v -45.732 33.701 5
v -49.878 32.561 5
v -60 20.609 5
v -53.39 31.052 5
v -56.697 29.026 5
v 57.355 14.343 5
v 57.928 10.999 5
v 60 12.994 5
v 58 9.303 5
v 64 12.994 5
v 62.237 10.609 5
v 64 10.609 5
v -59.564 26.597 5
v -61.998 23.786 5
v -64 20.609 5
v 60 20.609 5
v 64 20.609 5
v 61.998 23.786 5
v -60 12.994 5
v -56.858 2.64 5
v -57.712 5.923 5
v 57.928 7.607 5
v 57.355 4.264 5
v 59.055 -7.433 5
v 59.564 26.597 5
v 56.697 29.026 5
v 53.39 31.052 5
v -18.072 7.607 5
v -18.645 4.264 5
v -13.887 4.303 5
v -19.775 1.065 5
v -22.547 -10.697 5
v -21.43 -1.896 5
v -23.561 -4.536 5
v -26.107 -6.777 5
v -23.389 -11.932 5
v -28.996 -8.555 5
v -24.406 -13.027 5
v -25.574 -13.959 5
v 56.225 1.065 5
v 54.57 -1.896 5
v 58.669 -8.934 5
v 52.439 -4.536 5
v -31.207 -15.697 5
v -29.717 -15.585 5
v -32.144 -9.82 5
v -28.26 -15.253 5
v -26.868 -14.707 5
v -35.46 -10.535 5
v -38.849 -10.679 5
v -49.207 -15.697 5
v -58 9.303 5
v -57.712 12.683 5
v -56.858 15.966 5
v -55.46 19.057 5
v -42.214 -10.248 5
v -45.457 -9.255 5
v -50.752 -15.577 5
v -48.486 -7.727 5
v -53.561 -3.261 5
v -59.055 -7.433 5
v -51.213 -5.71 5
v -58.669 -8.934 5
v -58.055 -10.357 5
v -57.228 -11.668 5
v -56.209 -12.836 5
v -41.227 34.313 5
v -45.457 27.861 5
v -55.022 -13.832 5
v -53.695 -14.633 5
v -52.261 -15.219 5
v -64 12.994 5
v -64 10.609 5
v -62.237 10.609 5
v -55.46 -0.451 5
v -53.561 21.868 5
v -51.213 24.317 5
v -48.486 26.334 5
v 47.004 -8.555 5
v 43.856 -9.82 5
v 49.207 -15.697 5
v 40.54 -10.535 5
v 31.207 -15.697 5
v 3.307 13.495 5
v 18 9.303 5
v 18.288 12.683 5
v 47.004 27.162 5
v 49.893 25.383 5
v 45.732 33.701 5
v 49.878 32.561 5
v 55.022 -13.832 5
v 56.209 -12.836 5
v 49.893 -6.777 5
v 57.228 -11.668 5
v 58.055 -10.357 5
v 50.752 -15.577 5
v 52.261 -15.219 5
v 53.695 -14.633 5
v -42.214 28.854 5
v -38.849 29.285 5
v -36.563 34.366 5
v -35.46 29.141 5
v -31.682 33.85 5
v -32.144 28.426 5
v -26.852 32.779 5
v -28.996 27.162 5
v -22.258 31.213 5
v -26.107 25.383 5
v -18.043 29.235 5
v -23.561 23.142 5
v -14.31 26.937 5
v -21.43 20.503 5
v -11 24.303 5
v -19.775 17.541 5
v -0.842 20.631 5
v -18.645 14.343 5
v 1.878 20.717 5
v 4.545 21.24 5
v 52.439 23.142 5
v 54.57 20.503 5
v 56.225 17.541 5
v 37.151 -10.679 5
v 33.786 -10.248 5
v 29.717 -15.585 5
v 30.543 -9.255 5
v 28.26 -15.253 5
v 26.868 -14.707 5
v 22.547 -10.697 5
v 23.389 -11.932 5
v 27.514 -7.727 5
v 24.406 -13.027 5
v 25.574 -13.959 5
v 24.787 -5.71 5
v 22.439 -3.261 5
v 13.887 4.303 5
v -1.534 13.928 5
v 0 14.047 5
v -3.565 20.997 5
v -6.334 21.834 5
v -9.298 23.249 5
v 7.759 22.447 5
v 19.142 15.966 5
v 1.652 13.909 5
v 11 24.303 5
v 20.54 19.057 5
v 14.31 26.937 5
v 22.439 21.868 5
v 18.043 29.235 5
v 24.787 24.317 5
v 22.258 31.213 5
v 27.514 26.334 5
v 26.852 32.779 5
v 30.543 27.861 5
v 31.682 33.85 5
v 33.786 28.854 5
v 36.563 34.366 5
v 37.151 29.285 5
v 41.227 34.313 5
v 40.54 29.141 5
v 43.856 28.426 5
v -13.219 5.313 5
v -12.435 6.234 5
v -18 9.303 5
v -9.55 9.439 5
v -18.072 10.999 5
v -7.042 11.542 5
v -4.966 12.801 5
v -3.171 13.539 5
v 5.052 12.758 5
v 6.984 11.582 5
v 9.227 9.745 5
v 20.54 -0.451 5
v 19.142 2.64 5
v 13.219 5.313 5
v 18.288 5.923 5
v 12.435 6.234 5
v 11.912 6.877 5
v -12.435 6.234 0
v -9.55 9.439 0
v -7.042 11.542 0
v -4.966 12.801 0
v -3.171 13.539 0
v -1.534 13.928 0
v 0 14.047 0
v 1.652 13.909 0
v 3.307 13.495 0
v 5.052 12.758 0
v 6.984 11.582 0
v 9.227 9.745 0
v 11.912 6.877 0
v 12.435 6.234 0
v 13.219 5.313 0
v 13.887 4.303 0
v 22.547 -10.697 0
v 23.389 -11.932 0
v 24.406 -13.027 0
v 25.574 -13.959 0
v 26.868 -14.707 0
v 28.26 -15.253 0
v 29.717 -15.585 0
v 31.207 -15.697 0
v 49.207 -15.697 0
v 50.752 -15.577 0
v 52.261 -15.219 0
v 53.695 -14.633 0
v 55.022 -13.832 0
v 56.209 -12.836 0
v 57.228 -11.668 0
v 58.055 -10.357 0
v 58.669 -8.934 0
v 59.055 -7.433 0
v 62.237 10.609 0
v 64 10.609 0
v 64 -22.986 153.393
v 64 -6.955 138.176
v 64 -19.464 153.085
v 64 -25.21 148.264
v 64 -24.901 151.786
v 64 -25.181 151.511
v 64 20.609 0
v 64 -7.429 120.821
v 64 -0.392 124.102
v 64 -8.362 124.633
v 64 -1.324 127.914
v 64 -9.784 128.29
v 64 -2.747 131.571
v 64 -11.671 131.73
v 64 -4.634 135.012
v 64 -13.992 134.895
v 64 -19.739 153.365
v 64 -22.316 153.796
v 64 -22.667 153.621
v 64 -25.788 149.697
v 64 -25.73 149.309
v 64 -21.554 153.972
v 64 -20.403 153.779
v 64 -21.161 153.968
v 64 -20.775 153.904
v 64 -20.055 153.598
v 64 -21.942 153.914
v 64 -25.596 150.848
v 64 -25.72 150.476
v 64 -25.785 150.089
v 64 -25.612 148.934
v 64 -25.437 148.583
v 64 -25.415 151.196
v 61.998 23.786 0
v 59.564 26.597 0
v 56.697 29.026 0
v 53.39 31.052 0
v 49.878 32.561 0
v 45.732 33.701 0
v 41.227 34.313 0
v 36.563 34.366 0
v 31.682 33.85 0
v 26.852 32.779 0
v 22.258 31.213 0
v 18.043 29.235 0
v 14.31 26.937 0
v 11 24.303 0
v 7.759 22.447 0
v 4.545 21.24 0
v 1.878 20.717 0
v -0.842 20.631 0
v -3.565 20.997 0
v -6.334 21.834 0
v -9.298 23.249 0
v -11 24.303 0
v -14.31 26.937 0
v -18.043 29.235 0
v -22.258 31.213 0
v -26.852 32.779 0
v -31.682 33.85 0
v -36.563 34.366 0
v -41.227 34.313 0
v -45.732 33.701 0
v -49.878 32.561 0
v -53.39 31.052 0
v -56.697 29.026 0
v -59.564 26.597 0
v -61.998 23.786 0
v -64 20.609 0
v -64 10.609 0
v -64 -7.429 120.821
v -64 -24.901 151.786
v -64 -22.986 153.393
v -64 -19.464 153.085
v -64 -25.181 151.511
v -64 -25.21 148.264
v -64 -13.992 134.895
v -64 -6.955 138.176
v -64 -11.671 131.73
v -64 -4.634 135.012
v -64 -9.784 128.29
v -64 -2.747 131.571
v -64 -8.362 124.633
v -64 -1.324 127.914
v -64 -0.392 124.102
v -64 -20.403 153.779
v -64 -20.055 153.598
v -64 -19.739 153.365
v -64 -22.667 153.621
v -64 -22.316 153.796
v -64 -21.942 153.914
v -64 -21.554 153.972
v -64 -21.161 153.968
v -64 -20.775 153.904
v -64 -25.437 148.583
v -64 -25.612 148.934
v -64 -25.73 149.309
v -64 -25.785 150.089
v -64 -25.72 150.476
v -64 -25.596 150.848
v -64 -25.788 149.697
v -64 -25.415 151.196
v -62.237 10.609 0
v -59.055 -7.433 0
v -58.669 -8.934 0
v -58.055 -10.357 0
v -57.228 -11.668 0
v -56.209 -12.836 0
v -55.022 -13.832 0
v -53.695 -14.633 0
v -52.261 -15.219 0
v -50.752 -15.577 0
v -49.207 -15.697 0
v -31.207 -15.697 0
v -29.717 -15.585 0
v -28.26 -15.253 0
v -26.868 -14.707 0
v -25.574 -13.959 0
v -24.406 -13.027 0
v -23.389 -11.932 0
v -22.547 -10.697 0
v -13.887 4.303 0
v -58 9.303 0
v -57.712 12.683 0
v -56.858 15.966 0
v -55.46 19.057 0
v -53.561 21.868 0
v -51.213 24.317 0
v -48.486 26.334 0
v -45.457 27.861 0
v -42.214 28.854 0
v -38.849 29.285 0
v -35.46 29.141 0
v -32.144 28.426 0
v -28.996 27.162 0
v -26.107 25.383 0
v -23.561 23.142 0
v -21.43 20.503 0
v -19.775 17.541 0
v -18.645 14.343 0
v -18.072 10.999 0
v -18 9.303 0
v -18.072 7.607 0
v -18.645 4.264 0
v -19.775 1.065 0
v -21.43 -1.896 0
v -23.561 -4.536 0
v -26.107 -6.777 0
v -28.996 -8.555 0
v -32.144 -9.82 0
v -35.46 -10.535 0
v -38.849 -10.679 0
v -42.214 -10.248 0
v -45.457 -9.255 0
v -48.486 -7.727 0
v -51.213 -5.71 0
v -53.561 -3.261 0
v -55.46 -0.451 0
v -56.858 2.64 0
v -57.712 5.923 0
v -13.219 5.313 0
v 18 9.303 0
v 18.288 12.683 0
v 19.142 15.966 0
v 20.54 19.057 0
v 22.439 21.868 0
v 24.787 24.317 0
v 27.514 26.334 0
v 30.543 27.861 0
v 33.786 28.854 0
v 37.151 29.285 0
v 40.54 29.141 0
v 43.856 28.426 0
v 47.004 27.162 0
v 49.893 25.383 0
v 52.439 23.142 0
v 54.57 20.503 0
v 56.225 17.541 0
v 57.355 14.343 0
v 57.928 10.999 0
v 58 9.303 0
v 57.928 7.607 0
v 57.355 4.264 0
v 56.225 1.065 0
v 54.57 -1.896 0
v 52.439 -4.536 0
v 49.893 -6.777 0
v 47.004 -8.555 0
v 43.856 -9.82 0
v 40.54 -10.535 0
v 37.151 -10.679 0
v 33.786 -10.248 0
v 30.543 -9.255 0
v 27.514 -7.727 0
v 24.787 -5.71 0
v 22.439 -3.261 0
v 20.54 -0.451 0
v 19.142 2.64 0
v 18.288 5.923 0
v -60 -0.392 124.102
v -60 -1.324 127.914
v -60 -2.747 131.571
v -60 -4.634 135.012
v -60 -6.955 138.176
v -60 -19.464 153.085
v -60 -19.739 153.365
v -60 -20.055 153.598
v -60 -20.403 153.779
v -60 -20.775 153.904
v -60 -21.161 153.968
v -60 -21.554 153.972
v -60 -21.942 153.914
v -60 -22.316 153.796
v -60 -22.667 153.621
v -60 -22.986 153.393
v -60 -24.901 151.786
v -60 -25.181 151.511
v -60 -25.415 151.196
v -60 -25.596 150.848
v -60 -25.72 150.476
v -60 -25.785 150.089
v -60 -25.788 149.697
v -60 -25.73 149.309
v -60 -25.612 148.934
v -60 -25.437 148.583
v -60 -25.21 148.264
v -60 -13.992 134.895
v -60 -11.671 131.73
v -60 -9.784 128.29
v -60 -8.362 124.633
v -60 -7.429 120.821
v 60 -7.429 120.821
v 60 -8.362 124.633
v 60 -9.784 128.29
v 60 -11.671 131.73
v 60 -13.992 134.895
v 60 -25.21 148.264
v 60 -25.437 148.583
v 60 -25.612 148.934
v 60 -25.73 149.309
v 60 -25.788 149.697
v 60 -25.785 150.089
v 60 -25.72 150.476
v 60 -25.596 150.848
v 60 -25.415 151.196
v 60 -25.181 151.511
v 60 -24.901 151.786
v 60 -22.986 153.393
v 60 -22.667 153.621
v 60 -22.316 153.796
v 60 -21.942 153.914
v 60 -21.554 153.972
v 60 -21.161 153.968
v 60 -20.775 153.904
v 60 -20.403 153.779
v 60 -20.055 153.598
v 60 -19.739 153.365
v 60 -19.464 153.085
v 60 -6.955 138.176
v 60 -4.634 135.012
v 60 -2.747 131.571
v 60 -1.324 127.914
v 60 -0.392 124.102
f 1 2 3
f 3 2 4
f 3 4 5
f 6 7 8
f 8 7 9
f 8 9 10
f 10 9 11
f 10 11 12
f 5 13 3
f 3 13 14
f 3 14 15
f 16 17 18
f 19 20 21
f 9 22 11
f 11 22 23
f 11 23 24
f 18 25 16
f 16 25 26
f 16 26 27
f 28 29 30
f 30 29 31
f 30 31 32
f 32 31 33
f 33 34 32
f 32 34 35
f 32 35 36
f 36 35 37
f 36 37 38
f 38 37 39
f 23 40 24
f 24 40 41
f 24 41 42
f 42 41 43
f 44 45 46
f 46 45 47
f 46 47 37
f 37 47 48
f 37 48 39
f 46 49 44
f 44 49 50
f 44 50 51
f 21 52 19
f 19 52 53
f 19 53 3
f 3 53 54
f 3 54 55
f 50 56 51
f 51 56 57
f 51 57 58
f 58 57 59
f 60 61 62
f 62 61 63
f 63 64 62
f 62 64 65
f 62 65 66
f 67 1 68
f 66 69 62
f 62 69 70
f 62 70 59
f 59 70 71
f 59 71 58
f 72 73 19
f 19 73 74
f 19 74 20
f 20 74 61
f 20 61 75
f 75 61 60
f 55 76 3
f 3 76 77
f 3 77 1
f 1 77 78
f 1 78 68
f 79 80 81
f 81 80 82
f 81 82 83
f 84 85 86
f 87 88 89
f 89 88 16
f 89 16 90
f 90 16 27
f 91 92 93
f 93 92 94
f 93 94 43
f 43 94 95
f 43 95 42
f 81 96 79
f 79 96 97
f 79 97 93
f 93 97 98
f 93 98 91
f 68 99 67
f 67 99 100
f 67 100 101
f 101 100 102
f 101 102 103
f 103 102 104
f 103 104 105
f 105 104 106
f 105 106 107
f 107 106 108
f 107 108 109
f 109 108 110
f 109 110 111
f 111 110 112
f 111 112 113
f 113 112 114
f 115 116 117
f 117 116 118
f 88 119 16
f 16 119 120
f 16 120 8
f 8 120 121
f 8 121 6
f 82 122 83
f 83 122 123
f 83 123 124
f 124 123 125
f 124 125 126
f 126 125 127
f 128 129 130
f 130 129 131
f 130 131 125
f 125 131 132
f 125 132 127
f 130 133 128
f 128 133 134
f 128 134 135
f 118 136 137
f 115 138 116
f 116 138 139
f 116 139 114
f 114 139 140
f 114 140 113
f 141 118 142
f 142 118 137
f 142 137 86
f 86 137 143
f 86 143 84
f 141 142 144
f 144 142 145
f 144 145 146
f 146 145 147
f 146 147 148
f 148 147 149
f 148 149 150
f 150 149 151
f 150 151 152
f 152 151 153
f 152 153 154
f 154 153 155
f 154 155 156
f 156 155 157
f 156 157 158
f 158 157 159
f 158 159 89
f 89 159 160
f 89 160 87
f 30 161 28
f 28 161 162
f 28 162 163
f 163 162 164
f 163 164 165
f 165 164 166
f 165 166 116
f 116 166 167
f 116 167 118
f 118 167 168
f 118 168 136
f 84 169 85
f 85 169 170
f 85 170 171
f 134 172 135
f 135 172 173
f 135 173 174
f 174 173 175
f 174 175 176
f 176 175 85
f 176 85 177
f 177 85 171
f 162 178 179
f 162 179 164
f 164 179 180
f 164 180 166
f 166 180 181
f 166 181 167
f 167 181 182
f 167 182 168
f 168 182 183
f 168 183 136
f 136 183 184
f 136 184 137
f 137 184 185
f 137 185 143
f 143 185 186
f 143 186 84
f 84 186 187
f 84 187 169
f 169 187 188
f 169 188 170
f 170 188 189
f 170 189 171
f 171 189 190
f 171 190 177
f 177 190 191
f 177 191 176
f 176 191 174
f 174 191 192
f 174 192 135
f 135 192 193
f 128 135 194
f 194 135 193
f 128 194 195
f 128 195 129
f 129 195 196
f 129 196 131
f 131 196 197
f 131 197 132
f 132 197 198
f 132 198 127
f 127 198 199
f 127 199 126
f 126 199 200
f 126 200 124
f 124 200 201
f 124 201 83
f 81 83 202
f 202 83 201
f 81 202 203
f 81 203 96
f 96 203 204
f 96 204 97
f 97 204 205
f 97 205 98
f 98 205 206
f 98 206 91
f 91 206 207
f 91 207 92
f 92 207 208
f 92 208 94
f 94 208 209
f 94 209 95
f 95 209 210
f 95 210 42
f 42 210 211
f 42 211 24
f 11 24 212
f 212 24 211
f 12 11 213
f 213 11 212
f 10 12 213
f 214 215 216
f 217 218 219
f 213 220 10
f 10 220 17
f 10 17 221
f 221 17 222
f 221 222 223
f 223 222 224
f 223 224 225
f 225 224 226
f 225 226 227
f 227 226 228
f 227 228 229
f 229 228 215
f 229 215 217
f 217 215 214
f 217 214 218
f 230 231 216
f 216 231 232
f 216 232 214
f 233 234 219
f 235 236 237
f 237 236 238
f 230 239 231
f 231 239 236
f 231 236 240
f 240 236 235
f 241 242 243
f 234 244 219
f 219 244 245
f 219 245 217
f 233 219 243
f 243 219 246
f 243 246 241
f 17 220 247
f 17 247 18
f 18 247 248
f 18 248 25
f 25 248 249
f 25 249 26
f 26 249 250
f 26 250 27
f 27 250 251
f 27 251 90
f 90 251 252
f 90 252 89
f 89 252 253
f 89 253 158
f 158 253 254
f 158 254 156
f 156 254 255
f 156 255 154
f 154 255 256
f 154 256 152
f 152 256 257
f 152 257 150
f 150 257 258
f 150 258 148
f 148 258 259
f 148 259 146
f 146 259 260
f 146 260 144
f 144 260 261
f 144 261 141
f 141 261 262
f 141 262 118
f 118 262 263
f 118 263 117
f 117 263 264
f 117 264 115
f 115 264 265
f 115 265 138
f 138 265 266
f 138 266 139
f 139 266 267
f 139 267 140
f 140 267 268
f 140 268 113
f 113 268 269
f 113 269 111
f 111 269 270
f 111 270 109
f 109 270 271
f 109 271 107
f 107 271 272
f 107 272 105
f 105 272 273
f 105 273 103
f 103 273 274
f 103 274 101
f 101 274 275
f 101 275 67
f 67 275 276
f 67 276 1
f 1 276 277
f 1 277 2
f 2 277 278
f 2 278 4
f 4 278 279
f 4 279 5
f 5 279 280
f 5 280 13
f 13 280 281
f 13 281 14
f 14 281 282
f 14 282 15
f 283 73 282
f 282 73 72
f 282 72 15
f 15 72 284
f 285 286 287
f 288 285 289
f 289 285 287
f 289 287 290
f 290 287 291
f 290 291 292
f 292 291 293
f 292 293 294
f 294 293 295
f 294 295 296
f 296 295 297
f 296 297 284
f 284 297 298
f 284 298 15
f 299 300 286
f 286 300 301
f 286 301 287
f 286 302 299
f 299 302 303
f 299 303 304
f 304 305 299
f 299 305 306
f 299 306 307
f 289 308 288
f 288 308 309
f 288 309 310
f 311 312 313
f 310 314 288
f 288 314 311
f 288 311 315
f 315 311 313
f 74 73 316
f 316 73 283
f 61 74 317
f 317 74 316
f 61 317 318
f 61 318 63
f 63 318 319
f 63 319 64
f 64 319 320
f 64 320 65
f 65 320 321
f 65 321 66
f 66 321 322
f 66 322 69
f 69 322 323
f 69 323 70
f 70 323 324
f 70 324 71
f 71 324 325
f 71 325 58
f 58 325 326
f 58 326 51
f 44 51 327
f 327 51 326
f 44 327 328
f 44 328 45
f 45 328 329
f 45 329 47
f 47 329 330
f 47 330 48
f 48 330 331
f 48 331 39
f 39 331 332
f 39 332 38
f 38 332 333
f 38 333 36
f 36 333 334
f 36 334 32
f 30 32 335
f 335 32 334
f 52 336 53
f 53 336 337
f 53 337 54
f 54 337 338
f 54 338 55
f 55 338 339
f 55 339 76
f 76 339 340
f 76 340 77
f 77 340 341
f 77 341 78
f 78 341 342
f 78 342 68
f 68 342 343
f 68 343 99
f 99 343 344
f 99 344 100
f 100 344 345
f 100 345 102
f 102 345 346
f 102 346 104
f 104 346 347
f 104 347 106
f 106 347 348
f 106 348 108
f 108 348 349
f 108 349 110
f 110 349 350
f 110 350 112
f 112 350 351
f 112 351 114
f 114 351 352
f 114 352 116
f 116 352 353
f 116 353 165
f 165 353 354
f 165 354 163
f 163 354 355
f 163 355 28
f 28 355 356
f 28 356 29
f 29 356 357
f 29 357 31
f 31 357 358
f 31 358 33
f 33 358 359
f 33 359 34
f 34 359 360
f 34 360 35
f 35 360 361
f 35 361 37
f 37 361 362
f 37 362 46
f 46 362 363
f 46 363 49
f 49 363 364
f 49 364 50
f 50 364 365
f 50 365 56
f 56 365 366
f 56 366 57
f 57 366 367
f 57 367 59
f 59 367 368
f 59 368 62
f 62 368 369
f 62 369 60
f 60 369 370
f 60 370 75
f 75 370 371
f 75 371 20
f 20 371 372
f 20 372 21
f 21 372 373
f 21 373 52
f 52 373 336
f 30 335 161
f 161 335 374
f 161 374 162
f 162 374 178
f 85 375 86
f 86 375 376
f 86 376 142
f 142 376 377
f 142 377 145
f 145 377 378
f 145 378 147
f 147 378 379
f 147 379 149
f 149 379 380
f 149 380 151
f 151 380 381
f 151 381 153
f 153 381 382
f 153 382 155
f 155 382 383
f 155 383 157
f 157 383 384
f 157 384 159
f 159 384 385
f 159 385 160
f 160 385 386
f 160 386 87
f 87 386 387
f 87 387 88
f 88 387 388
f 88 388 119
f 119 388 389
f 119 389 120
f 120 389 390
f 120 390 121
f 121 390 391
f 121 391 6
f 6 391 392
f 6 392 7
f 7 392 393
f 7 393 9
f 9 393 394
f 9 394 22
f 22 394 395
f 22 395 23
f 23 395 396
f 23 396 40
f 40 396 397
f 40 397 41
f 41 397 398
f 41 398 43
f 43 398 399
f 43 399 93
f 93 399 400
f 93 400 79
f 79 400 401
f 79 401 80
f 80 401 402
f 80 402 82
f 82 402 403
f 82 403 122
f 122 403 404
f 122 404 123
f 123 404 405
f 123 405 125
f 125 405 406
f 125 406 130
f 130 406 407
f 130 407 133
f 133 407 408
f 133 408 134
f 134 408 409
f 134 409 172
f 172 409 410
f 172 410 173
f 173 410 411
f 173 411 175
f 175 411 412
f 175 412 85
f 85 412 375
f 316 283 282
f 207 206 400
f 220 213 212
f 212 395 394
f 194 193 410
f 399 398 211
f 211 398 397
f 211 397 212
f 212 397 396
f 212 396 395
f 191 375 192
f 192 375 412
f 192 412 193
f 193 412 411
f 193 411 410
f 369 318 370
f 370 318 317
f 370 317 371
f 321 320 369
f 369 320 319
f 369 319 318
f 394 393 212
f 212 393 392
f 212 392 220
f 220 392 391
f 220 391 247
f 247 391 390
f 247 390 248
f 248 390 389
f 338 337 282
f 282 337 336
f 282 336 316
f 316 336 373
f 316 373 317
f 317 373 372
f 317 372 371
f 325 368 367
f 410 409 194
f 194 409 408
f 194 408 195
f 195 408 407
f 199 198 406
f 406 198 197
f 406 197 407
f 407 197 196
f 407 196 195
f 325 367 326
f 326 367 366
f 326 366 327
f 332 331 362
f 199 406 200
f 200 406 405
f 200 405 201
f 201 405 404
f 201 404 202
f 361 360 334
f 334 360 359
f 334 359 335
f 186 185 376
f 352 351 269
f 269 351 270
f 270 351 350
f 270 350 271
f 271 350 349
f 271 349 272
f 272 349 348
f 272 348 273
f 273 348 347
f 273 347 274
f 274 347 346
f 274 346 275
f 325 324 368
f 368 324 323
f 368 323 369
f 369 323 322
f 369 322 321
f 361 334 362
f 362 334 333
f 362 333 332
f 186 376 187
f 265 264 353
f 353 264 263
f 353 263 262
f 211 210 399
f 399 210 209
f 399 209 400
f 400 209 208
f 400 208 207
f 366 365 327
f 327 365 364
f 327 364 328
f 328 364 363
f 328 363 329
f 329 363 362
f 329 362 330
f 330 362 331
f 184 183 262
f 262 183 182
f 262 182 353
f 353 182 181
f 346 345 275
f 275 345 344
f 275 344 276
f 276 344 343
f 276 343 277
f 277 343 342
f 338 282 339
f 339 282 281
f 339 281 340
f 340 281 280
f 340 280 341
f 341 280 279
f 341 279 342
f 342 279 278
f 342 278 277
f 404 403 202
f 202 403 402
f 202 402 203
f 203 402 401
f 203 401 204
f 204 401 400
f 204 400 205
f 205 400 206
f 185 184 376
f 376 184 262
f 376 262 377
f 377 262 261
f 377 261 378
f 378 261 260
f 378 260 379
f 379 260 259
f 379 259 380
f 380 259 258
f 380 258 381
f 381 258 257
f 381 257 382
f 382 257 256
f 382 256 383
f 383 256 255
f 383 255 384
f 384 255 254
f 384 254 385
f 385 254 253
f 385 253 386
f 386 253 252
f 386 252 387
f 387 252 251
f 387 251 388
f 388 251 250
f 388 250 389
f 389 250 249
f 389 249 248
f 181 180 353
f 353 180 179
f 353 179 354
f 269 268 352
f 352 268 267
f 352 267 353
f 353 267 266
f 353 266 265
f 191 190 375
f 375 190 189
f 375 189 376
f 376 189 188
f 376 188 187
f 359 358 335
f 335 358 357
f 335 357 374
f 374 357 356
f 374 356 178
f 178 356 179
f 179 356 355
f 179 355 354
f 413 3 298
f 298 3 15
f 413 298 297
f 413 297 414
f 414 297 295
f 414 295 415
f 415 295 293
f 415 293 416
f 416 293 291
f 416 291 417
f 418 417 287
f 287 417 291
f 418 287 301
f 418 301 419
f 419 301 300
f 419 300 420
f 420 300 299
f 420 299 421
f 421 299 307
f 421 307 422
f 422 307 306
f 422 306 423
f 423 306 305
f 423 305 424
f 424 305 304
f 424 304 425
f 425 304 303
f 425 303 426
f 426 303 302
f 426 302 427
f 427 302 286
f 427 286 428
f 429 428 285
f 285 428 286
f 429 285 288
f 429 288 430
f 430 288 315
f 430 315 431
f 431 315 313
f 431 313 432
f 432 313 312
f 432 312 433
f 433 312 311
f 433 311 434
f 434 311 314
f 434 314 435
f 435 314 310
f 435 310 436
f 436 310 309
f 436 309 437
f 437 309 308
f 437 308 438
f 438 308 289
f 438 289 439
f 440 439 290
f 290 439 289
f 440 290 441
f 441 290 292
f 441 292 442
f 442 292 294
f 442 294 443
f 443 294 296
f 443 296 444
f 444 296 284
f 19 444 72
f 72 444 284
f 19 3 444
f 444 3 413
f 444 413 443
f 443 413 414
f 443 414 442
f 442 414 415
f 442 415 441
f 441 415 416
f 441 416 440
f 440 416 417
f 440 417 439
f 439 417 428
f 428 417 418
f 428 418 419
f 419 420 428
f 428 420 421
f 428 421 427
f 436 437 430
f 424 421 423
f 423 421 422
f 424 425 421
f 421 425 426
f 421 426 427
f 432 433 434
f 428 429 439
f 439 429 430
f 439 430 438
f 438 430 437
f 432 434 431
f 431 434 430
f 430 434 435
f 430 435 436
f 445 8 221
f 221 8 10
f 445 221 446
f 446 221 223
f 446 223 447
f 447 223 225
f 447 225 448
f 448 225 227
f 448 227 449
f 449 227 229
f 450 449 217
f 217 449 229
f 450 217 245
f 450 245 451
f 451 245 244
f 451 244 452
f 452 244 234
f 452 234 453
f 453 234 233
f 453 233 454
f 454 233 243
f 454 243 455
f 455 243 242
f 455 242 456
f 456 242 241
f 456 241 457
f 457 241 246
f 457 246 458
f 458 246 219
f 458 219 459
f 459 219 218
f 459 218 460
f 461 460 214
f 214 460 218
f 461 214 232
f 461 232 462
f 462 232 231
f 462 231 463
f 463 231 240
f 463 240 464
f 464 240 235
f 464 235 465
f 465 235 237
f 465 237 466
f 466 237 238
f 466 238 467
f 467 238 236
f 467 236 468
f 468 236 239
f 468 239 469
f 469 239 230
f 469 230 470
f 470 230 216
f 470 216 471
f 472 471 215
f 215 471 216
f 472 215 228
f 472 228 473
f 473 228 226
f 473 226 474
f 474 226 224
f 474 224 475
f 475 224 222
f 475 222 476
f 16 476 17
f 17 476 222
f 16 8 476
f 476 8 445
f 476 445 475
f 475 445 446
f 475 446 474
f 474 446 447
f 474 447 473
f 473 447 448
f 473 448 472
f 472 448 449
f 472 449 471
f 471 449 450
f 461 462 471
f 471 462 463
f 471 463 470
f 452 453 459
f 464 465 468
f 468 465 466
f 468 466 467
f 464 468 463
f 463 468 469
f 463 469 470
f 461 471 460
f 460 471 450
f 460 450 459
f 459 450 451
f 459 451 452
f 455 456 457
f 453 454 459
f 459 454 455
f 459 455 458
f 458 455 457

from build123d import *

# Parameters (mm, degrees)
SKETCH1_R           = 20
BOSS_EXTRUDE1_DEPTH = 5
BOSS_EXTRUDE2_DEPTH = 4


with BuildPart() as part:
    # Sketch1 → Boss-Extrude1 (new body)
    # profile 1 of 4: a face of its own
    with BuildSketch(Plane.XY):
        with BuildLine():
            Line((0, 14.047165148), (0, 20.609217456))
            add(Edge.make_bspline(
                [(0, 20.609217456), (-5.5, 20.609217456), (-11, 24.303121583)],
                knots=[0.5, 0.5, 0.5, 1, 1, 1], degree=2))
            add(Edge.make_bspline(
                [(-11, 24.303121583), (-25.025952509, 37.034801988), (-53.805838246, 39.750693097), (-64, 20.609217456)],
                knots=[0, 0, 0, 0, 1, 1, 1, 1], degree=3))
            Line((-64, 20.609217456), (-62.236730193, 10.609217456))
            Line((-62.236730193, 10.609217456), (-59.055336952, -7.433360194))
            ThreePointArc((-59.055336952, -7.433360194), (-55.635135519, -13.357322848), (-49.207259422, -15.696878417))
            Line((-49.207259422, -15.696878417), (-31.207259422, -15.696878417))
            ThreePointArc((-31.207259422, -15.696878417), (-26.207259422, -14.357132455), (-22.547005384, -10.696878417))
            Line((-22.547005384, -10.696878417), (-13.886751346, 4.303121583))
            ThreePointArc((-13.886751346, 4.303121583), (-13.219249284, 5.312773474), (-12.434656927, 6.234386612))
            add(Edge.make_bspline(
                [(-12.434656927, 6.234386612), (-6.217328463, 14.047165148), (0, 14.047165148)],
                knots=[0.052283446, 0.052283446, 0.052283446, 0.5, 0.5, 0.5], degree=2))
        make_face()
        with Locations((-38, 9.303121583)):
            Circle(SKETCH1_R, mode=Mode.SUBTRACT)
    # profile 2 of 4: a face of its own
    with BuildSketch(Plane.XY):
        with BuildLine():
            add(Edge.make_bspline(
                [(11, 24.303121583), (5.5, 20.609217456), (0, 20.609217456)],
                knots=[0, 0, 0, 0.5, 0.5, 0.5], degree=2))
            Line((0, 20.609217456), (0, 14.047165148))
            add(Edge.make_bspline(
                [(0, 14.047165148), (6.217328463, 14.047165148), (12.434656927, 6.234386612)],
                knots=[0.5, 0.5, 0.5, 0.947716554, 0.947716554, 0.947716554], degree=2))
            ThreePointArc((12.434656927, 6.234386612), (13.219249284, 5.312773474), (13.886751346, 4.303121583))
            Line((13.886751346, 4.303121583), (22.547005384, -10.696878417))
            ThreePointArc((22.547005384, -10.696878417), (26.207259422, -14.357132455), (31.207259422, -15.696878417))
            Line((31.207259422, -15.696878417), (49.207259422, -15.696878417))
            ThreePointArc((49.207259422, -15.696878417), (55.635135519, -13.357322848), (59.055336952, -7.433360194))
            Line((59.055336952, -7.433360194), (62.236730193, 10.609217456))
            Line((62.236730193, 10.609217456), (64, 20.609217456))
            add(Edge.make_bspline(
                [(11, 24.303121583), (25.025952509, 37.034801988), (53.805838246, 39.750693097), (64, 20.609217456)],
                knots=[0, 0, 0, 0, 1, 1, 1, 1], degree=3))
        make_face()
        with Locations((38, 9.303121583)):
            Circle(SKETCH1_R, mode=Mode.SUBTRACT)
    # profile 3 of 4: a face of its own
    with BuildSketch(Plane.XY):
        Polygon((64, 10.609217456), (64, 20.609217456), (62.236730193, 10.609217456), align=None)
    # profile 4 of 4: a face of its own
    with BuildSketch(Plane.XY):
        Polygon((-62.236730193, 10.609217456), (-64, 20.609217456), (-64, 10.609217456), align=None)
    extrude(amount=BOSS_EXTRUDE1_DEPTH)

    # Sketch3 → Boss-Extrude2 (add)
    with BuildSketch(Plane.ZY.offset(64)):
        with BuildLine():
            Line((5, 20.609217456), (124.102313443, -0.391733869))
            ThreePointArc((124.102313443, -0.391733869), (131.571415965, -2.746732848), (138.176496403, -6.954633166))
            Line((138.176496403, -6.954633166), (153.084888892, -19.464259805))
            ThreePointArc((153.084888892, -19.464259805), (153.968406613, -21.161481556), (153.393030976, -22.986339937))
            Line((153.393030976, -22.986339937), (151.786061952, -24.901451044))
            ThreePointArc((151.786061952, -24.901451044), (150.088840201, -25.784968765), (148.26398182, -25.209593128))
            Line((148.26398182, -25.209593128), (134.895046755, -13.991724646))
            ThreePointArc((134.895046755, -13.991724646), (128.289966317, -9.783824329), (120.820863794, -7.428825349))
            Line((120.820863794, -7.428825349), (5, 12.993517867))
            Line((5, 12.993517867), (5, 10.609217456))
            Line((5, 10.609217456), (0, 10.609217456))
            Line((0, 10.609217456), (0, 20.609217456))
            Line((0, 20.609217456), (5, 20.609217456))
        make_face()
    boss_extrude2 = extrude(amount=-BOSS_EXTRUDE2_DEPTH)

    # Mirror1: Boss-Extrude2 across plane
    add(boss_extrude2.mirror(Plane(origin=(0, 0, 0), x_dir=(0, 0, 1), z_dir=(1, 0, 0))))


solid = part.part
